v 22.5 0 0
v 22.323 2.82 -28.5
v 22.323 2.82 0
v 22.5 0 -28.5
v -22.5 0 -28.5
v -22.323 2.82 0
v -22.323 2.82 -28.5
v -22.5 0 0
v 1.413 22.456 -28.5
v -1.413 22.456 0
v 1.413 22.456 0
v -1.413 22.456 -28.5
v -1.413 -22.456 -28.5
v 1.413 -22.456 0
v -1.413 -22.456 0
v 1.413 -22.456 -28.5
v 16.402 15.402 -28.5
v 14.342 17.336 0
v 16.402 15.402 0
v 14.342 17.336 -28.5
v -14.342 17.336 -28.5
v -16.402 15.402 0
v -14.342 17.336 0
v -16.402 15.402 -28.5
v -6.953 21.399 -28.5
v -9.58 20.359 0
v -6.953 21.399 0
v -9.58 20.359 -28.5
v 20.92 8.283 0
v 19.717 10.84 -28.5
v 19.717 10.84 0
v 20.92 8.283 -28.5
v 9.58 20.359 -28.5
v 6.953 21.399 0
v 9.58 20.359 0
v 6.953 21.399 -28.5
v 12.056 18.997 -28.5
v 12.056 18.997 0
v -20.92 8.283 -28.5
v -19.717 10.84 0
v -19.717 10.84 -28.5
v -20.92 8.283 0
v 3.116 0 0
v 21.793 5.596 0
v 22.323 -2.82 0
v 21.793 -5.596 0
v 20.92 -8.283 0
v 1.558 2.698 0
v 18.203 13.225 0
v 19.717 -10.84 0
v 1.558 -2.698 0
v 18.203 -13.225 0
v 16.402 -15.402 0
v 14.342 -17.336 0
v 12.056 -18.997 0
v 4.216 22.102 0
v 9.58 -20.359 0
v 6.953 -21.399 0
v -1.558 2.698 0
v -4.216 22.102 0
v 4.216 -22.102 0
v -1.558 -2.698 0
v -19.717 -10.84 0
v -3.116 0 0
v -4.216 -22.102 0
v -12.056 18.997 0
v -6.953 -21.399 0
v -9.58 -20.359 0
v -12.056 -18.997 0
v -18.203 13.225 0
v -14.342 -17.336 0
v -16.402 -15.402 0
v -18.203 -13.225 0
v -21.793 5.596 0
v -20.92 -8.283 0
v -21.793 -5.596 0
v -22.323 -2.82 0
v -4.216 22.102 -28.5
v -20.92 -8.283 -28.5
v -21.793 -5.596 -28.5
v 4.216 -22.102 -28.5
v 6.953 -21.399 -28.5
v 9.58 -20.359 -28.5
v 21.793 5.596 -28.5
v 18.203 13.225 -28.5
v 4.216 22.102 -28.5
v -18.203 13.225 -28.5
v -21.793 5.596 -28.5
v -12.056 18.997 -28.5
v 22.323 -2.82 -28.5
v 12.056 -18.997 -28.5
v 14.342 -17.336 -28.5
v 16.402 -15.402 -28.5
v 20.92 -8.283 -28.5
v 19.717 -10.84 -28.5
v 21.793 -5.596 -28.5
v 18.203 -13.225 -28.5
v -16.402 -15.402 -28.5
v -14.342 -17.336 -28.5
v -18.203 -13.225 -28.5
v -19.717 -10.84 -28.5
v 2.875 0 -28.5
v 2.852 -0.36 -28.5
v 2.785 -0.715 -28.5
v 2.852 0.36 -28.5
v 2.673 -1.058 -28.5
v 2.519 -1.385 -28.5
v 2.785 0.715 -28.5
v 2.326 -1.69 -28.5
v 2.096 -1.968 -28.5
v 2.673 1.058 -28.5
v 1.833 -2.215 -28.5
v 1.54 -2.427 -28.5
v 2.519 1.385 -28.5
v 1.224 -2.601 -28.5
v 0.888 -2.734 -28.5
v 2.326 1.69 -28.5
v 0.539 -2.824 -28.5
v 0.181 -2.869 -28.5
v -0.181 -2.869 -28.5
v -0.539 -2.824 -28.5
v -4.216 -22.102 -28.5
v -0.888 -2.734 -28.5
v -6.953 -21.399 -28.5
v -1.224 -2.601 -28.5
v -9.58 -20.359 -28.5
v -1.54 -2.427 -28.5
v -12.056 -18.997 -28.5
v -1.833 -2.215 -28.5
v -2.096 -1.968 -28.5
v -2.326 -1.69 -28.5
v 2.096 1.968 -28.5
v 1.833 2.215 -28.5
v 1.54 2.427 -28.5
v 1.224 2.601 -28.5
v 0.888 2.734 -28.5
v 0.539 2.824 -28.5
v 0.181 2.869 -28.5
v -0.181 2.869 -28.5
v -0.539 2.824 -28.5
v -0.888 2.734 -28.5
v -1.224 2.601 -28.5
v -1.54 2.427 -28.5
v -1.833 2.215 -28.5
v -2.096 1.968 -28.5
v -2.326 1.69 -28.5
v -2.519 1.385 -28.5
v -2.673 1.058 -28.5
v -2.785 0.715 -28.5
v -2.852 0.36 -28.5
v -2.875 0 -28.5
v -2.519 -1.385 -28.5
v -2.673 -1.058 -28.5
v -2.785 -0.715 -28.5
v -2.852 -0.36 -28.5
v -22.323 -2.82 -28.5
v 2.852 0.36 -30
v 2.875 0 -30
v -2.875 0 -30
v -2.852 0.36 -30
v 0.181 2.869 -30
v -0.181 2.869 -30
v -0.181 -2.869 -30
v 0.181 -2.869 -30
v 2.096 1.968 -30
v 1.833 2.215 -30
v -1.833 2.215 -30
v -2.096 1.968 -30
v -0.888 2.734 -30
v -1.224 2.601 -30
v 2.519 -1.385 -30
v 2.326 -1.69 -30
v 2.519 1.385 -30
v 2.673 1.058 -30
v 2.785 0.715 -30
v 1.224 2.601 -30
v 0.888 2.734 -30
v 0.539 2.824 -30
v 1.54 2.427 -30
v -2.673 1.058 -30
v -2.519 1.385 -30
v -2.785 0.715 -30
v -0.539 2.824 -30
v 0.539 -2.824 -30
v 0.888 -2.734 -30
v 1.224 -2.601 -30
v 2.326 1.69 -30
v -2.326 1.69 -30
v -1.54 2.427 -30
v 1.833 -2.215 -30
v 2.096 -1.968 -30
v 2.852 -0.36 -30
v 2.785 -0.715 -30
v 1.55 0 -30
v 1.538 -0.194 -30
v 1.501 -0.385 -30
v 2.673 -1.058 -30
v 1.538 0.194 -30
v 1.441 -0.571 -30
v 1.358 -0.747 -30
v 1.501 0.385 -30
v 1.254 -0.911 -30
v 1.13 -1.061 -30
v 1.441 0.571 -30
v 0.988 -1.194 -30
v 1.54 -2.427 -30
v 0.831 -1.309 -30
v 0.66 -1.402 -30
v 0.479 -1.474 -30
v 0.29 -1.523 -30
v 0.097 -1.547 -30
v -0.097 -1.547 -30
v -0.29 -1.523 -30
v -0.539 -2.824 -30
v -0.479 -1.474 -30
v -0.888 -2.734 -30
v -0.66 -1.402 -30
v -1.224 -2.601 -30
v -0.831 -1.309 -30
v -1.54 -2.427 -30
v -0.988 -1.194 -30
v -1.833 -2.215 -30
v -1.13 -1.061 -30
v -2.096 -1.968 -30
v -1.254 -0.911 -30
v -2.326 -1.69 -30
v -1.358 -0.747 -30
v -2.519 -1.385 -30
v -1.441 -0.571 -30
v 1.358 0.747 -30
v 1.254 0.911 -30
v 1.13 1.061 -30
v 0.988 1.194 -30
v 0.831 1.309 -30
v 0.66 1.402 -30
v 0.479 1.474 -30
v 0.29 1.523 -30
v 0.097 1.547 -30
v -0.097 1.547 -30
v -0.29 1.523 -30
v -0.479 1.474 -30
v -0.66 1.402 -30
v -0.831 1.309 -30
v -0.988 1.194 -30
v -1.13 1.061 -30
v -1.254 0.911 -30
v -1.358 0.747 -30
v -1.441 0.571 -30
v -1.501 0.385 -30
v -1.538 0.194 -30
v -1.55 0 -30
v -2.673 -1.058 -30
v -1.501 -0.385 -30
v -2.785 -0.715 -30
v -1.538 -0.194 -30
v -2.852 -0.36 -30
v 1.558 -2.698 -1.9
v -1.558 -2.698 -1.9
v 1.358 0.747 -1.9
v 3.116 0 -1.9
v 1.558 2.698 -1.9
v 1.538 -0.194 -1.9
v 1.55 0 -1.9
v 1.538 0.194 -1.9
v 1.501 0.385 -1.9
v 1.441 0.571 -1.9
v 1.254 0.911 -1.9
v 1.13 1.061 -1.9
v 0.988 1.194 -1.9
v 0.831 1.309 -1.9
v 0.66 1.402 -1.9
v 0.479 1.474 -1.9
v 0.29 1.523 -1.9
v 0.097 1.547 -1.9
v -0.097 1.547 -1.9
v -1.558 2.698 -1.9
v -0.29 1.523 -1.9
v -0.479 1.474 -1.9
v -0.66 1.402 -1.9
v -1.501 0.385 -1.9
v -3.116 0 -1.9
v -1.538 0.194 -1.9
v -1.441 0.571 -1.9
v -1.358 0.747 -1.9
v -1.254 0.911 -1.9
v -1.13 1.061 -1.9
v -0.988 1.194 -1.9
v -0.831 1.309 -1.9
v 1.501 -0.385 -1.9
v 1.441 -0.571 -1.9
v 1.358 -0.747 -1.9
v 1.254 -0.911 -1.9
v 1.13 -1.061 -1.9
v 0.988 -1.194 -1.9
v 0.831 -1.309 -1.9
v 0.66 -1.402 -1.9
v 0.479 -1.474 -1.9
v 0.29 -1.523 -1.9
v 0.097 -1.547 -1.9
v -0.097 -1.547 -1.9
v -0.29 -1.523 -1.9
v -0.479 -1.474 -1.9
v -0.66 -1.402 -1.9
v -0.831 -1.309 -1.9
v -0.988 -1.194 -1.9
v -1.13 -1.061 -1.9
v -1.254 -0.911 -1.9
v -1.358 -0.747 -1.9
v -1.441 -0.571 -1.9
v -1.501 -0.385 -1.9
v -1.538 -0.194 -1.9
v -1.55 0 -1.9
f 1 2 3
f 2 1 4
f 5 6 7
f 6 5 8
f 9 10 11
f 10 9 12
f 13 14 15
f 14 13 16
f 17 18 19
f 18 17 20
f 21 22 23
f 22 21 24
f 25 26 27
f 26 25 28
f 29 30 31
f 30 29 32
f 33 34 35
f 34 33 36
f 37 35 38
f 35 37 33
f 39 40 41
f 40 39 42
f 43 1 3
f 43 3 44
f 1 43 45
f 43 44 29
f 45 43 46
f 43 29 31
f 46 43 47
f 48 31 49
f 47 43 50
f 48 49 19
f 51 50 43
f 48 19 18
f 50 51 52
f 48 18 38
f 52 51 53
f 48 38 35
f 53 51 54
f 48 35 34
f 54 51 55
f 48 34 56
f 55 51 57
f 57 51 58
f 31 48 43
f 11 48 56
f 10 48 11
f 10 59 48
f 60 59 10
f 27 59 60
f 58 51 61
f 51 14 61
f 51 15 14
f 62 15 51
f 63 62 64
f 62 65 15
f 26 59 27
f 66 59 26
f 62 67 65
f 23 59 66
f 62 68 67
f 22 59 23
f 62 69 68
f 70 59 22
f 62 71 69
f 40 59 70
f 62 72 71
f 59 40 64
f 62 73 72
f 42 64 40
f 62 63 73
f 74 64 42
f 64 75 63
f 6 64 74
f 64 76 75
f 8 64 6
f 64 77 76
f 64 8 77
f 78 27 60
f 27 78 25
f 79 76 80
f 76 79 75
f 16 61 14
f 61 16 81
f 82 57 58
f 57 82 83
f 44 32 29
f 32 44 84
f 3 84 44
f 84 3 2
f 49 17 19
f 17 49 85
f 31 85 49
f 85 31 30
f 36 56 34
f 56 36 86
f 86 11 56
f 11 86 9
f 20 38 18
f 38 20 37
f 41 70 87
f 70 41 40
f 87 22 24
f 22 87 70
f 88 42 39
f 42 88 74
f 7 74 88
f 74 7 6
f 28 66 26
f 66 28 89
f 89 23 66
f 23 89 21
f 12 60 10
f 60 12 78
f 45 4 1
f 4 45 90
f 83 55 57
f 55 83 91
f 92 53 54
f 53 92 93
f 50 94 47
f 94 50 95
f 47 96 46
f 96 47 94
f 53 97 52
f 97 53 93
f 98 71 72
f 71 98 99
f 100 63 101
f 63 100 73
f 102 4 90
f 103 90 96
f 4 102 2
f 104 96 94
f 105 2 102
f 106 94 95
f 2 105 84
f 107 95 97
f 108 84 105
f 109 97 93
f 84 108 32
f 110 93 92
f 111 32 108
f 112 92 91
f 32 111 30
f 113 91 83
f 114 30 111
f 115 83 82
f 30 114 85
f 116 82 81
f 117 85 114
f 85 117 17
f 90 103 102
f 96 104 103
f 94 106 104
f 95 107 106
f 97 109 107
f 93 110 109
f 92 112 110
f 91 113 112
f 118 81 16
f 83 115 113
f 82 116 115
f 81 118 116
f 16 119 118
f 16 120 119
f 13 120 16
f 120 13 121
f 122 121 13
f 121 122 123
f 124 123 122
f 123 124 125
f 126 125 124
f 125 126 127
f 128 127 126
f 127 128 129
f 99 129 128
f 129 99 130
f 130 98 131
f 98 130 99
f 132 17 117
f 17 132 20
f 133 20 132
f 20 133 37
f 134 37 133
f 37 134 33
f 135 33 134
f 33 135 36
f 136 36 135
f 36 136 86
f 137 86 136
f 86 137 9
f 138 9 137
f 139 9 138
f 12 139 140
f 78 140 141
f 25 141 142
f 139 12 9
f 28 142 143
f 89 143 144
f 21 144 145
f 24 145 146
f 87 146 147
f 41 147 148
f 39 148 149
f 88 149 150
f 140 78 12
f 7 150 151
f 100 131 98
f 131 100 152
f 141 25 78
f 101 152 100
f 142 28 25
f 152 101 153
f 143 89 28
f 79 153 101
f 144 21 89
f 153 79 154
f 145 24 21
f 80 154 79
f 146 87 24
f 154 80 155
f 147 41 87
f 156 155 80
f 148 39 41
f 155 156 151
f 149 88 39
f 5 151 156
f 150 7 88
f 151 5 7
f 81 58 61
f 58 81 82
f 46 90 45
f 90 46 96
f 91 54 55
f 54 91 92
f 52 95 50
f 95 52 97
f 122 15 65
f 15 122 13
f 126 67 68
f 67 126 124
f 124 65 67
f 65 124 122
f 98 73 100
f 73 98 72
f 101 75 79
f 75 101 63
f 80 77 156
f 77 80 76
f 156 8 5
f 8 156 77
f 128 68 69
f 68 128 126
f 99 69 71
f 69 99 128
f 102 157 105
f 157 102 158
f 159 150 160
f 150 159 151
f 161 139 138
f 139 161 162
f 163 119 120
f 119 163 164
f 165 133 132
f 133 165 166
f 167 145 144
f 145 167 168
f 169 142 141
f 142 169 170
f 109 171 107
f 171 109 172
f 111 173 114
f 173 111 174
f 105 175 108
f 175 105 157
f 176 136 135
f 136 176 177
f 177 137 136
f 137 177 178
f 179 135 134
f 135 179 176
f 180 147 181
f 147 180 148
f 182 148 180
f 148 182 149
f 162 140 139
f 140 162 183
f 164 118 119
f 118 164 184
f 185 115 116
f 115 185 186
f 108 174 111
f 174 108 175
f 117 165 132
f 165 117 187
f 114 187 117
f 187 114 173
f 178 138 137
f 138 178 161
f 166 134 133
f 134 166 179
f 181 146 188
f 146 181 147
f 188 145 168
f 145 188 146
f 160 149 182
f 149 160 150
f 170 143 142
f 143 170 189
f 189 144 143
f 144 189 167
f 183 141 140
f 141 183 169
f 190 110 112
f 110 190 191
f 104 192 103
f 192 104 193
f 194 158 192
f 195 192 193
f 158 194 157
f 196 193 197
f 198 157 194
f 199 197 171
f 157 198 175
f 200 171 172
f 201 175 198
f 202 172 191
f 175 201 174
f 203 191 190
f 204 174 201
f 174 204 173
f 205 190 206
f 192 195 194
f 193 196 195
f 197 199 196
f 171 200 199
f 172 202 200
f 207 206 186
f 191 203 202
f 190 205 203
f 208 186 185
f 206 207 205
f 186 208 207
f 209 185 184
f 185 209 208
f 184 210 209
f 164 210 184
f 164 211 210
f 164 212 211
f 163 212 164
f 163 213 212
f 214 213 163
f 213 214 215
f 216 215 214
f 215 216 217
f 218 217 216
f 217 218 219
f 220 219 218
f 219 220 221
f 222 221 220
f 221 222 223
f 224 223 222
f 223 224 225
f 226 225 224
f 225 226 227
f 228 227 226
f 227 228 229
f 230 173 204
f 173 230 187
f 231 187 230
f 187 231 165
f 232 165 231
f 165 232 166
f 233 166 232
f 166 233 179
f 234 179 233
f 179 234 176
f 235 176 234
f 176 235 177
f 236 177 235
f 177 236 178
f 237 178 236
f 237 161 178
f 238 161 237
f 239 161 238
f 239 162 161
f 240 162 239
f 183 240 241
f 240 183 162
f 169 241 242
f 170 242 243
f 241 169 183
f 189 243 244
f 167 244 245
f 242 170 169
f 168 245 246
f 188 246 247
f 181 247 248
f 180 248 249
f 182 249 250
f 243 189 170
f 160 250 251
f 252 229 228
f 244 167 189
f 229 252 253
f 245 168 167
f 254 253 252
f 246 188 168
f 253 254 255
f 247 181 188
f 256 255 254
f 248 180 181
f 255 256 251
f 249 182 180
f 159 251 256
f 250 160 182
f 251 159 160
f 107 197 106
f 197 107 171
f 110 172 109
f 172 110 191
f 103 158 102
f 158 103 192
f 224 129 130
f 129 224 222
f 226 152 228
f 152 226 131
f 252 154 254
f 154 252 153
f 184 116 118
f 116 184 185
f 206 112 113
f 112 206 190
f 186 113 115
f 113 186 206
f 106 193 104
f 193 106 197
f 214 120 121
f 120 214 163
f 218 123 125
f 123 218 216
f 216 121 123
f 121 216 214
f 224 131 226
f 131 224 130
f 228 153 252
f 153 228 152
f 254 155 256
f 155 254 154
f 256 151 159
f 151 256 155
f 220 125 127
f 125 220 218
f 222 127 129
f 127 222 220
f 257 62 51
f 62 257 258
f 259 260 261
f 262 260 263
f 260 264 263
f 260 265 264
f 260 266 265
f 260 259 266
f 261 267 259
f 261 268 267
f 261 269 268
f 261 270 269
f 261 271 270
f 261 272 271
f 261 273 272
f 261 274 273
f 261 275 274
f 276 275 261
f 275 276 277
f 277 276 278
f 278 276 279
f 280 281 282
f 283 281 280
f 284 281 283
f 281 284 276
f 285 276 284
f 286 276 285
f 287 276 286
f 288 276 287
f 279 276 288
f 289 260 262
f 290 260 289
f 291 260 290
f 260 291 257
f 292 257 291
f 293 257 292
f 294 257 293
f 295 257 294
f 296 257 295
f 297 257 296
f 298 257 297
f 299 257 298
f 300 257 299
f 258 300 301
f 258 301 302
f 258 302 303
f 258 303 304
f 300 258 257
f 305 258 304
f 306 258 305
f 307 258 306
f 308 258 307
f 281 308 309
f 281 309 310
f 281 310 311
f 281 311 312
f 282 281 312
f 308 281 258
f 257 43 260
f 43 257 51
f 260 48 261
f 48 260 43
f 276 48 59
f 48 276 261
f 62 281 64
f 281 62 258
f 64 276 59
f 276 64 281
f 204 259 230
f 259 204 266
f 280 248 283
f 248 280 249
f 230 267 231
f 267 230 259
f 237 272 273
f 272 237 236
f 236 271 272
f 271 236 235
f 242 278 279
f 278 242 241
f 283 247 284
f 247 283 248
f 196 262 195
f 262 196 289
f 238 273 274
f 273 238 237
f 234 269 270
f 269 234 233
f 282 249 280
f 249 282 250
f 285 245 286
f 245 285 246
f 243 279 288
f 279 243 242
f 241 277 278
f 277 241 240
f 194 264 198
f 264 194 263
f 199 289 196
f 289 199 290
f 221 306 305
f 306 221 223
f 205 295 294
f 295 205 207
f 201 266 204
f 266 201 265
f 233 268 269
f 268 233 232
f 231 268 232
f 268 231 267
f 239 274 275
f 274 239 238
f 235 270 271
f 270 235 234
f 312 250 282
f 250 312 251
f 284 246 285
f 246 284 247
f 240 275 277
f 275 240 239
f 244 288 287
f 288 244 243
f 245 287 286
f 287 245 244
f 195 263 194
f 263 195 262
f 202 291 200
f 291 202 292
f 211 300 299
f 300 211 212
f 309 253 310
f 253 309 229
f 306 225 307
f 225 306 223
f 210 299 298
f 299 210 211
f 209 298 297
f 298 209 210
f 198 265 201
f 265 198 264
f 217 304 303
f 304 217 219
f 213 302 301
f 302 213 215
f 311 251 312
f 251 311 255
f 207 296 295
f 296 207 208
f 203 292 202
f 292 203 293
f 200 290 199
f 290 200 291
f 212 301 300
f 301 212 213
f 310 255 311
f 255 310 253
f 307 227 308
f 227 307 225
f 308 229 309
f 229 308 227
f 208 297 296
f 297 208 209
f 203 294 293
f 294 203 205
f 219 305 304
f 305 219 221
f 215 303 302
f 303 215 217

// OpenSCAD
$fn = 50;

difference() {
	union() {
		translate(v = [0, 0, -28.5]) {
			cylinder(h = 28.5, r = 22.5);
		}
		#translate(v = [0, 0, -30.0]) {
			cylinder(h = 30, r = 2.875);
		}
	}
	union() {
		translate(v = [0, 0, 0]) {
			rotate(a = [0, 0, 0]) {
				difference() {
					union() {
						translate(v = [0, 0, -1.9]) {
							linear_extrude(height = 1.9) {
								polygon(points = [[3.1158, 0.0], [1.5579000000000005, 2.698361953111554], [-1.5578999999999994, 2.6983619531115544], [-3.1158, 3.815754496783323e-16], [-1.5579000000000014, -2.6983619531115535], [1.557899999999998, -2.6983619531115552]]);
							}
						}
					}
					union();
				}
			}
		}
		#translate(v = [0, 0, -100.0]) {
			cylinder(h = 200, r = 1.55);
		}
	}
}
